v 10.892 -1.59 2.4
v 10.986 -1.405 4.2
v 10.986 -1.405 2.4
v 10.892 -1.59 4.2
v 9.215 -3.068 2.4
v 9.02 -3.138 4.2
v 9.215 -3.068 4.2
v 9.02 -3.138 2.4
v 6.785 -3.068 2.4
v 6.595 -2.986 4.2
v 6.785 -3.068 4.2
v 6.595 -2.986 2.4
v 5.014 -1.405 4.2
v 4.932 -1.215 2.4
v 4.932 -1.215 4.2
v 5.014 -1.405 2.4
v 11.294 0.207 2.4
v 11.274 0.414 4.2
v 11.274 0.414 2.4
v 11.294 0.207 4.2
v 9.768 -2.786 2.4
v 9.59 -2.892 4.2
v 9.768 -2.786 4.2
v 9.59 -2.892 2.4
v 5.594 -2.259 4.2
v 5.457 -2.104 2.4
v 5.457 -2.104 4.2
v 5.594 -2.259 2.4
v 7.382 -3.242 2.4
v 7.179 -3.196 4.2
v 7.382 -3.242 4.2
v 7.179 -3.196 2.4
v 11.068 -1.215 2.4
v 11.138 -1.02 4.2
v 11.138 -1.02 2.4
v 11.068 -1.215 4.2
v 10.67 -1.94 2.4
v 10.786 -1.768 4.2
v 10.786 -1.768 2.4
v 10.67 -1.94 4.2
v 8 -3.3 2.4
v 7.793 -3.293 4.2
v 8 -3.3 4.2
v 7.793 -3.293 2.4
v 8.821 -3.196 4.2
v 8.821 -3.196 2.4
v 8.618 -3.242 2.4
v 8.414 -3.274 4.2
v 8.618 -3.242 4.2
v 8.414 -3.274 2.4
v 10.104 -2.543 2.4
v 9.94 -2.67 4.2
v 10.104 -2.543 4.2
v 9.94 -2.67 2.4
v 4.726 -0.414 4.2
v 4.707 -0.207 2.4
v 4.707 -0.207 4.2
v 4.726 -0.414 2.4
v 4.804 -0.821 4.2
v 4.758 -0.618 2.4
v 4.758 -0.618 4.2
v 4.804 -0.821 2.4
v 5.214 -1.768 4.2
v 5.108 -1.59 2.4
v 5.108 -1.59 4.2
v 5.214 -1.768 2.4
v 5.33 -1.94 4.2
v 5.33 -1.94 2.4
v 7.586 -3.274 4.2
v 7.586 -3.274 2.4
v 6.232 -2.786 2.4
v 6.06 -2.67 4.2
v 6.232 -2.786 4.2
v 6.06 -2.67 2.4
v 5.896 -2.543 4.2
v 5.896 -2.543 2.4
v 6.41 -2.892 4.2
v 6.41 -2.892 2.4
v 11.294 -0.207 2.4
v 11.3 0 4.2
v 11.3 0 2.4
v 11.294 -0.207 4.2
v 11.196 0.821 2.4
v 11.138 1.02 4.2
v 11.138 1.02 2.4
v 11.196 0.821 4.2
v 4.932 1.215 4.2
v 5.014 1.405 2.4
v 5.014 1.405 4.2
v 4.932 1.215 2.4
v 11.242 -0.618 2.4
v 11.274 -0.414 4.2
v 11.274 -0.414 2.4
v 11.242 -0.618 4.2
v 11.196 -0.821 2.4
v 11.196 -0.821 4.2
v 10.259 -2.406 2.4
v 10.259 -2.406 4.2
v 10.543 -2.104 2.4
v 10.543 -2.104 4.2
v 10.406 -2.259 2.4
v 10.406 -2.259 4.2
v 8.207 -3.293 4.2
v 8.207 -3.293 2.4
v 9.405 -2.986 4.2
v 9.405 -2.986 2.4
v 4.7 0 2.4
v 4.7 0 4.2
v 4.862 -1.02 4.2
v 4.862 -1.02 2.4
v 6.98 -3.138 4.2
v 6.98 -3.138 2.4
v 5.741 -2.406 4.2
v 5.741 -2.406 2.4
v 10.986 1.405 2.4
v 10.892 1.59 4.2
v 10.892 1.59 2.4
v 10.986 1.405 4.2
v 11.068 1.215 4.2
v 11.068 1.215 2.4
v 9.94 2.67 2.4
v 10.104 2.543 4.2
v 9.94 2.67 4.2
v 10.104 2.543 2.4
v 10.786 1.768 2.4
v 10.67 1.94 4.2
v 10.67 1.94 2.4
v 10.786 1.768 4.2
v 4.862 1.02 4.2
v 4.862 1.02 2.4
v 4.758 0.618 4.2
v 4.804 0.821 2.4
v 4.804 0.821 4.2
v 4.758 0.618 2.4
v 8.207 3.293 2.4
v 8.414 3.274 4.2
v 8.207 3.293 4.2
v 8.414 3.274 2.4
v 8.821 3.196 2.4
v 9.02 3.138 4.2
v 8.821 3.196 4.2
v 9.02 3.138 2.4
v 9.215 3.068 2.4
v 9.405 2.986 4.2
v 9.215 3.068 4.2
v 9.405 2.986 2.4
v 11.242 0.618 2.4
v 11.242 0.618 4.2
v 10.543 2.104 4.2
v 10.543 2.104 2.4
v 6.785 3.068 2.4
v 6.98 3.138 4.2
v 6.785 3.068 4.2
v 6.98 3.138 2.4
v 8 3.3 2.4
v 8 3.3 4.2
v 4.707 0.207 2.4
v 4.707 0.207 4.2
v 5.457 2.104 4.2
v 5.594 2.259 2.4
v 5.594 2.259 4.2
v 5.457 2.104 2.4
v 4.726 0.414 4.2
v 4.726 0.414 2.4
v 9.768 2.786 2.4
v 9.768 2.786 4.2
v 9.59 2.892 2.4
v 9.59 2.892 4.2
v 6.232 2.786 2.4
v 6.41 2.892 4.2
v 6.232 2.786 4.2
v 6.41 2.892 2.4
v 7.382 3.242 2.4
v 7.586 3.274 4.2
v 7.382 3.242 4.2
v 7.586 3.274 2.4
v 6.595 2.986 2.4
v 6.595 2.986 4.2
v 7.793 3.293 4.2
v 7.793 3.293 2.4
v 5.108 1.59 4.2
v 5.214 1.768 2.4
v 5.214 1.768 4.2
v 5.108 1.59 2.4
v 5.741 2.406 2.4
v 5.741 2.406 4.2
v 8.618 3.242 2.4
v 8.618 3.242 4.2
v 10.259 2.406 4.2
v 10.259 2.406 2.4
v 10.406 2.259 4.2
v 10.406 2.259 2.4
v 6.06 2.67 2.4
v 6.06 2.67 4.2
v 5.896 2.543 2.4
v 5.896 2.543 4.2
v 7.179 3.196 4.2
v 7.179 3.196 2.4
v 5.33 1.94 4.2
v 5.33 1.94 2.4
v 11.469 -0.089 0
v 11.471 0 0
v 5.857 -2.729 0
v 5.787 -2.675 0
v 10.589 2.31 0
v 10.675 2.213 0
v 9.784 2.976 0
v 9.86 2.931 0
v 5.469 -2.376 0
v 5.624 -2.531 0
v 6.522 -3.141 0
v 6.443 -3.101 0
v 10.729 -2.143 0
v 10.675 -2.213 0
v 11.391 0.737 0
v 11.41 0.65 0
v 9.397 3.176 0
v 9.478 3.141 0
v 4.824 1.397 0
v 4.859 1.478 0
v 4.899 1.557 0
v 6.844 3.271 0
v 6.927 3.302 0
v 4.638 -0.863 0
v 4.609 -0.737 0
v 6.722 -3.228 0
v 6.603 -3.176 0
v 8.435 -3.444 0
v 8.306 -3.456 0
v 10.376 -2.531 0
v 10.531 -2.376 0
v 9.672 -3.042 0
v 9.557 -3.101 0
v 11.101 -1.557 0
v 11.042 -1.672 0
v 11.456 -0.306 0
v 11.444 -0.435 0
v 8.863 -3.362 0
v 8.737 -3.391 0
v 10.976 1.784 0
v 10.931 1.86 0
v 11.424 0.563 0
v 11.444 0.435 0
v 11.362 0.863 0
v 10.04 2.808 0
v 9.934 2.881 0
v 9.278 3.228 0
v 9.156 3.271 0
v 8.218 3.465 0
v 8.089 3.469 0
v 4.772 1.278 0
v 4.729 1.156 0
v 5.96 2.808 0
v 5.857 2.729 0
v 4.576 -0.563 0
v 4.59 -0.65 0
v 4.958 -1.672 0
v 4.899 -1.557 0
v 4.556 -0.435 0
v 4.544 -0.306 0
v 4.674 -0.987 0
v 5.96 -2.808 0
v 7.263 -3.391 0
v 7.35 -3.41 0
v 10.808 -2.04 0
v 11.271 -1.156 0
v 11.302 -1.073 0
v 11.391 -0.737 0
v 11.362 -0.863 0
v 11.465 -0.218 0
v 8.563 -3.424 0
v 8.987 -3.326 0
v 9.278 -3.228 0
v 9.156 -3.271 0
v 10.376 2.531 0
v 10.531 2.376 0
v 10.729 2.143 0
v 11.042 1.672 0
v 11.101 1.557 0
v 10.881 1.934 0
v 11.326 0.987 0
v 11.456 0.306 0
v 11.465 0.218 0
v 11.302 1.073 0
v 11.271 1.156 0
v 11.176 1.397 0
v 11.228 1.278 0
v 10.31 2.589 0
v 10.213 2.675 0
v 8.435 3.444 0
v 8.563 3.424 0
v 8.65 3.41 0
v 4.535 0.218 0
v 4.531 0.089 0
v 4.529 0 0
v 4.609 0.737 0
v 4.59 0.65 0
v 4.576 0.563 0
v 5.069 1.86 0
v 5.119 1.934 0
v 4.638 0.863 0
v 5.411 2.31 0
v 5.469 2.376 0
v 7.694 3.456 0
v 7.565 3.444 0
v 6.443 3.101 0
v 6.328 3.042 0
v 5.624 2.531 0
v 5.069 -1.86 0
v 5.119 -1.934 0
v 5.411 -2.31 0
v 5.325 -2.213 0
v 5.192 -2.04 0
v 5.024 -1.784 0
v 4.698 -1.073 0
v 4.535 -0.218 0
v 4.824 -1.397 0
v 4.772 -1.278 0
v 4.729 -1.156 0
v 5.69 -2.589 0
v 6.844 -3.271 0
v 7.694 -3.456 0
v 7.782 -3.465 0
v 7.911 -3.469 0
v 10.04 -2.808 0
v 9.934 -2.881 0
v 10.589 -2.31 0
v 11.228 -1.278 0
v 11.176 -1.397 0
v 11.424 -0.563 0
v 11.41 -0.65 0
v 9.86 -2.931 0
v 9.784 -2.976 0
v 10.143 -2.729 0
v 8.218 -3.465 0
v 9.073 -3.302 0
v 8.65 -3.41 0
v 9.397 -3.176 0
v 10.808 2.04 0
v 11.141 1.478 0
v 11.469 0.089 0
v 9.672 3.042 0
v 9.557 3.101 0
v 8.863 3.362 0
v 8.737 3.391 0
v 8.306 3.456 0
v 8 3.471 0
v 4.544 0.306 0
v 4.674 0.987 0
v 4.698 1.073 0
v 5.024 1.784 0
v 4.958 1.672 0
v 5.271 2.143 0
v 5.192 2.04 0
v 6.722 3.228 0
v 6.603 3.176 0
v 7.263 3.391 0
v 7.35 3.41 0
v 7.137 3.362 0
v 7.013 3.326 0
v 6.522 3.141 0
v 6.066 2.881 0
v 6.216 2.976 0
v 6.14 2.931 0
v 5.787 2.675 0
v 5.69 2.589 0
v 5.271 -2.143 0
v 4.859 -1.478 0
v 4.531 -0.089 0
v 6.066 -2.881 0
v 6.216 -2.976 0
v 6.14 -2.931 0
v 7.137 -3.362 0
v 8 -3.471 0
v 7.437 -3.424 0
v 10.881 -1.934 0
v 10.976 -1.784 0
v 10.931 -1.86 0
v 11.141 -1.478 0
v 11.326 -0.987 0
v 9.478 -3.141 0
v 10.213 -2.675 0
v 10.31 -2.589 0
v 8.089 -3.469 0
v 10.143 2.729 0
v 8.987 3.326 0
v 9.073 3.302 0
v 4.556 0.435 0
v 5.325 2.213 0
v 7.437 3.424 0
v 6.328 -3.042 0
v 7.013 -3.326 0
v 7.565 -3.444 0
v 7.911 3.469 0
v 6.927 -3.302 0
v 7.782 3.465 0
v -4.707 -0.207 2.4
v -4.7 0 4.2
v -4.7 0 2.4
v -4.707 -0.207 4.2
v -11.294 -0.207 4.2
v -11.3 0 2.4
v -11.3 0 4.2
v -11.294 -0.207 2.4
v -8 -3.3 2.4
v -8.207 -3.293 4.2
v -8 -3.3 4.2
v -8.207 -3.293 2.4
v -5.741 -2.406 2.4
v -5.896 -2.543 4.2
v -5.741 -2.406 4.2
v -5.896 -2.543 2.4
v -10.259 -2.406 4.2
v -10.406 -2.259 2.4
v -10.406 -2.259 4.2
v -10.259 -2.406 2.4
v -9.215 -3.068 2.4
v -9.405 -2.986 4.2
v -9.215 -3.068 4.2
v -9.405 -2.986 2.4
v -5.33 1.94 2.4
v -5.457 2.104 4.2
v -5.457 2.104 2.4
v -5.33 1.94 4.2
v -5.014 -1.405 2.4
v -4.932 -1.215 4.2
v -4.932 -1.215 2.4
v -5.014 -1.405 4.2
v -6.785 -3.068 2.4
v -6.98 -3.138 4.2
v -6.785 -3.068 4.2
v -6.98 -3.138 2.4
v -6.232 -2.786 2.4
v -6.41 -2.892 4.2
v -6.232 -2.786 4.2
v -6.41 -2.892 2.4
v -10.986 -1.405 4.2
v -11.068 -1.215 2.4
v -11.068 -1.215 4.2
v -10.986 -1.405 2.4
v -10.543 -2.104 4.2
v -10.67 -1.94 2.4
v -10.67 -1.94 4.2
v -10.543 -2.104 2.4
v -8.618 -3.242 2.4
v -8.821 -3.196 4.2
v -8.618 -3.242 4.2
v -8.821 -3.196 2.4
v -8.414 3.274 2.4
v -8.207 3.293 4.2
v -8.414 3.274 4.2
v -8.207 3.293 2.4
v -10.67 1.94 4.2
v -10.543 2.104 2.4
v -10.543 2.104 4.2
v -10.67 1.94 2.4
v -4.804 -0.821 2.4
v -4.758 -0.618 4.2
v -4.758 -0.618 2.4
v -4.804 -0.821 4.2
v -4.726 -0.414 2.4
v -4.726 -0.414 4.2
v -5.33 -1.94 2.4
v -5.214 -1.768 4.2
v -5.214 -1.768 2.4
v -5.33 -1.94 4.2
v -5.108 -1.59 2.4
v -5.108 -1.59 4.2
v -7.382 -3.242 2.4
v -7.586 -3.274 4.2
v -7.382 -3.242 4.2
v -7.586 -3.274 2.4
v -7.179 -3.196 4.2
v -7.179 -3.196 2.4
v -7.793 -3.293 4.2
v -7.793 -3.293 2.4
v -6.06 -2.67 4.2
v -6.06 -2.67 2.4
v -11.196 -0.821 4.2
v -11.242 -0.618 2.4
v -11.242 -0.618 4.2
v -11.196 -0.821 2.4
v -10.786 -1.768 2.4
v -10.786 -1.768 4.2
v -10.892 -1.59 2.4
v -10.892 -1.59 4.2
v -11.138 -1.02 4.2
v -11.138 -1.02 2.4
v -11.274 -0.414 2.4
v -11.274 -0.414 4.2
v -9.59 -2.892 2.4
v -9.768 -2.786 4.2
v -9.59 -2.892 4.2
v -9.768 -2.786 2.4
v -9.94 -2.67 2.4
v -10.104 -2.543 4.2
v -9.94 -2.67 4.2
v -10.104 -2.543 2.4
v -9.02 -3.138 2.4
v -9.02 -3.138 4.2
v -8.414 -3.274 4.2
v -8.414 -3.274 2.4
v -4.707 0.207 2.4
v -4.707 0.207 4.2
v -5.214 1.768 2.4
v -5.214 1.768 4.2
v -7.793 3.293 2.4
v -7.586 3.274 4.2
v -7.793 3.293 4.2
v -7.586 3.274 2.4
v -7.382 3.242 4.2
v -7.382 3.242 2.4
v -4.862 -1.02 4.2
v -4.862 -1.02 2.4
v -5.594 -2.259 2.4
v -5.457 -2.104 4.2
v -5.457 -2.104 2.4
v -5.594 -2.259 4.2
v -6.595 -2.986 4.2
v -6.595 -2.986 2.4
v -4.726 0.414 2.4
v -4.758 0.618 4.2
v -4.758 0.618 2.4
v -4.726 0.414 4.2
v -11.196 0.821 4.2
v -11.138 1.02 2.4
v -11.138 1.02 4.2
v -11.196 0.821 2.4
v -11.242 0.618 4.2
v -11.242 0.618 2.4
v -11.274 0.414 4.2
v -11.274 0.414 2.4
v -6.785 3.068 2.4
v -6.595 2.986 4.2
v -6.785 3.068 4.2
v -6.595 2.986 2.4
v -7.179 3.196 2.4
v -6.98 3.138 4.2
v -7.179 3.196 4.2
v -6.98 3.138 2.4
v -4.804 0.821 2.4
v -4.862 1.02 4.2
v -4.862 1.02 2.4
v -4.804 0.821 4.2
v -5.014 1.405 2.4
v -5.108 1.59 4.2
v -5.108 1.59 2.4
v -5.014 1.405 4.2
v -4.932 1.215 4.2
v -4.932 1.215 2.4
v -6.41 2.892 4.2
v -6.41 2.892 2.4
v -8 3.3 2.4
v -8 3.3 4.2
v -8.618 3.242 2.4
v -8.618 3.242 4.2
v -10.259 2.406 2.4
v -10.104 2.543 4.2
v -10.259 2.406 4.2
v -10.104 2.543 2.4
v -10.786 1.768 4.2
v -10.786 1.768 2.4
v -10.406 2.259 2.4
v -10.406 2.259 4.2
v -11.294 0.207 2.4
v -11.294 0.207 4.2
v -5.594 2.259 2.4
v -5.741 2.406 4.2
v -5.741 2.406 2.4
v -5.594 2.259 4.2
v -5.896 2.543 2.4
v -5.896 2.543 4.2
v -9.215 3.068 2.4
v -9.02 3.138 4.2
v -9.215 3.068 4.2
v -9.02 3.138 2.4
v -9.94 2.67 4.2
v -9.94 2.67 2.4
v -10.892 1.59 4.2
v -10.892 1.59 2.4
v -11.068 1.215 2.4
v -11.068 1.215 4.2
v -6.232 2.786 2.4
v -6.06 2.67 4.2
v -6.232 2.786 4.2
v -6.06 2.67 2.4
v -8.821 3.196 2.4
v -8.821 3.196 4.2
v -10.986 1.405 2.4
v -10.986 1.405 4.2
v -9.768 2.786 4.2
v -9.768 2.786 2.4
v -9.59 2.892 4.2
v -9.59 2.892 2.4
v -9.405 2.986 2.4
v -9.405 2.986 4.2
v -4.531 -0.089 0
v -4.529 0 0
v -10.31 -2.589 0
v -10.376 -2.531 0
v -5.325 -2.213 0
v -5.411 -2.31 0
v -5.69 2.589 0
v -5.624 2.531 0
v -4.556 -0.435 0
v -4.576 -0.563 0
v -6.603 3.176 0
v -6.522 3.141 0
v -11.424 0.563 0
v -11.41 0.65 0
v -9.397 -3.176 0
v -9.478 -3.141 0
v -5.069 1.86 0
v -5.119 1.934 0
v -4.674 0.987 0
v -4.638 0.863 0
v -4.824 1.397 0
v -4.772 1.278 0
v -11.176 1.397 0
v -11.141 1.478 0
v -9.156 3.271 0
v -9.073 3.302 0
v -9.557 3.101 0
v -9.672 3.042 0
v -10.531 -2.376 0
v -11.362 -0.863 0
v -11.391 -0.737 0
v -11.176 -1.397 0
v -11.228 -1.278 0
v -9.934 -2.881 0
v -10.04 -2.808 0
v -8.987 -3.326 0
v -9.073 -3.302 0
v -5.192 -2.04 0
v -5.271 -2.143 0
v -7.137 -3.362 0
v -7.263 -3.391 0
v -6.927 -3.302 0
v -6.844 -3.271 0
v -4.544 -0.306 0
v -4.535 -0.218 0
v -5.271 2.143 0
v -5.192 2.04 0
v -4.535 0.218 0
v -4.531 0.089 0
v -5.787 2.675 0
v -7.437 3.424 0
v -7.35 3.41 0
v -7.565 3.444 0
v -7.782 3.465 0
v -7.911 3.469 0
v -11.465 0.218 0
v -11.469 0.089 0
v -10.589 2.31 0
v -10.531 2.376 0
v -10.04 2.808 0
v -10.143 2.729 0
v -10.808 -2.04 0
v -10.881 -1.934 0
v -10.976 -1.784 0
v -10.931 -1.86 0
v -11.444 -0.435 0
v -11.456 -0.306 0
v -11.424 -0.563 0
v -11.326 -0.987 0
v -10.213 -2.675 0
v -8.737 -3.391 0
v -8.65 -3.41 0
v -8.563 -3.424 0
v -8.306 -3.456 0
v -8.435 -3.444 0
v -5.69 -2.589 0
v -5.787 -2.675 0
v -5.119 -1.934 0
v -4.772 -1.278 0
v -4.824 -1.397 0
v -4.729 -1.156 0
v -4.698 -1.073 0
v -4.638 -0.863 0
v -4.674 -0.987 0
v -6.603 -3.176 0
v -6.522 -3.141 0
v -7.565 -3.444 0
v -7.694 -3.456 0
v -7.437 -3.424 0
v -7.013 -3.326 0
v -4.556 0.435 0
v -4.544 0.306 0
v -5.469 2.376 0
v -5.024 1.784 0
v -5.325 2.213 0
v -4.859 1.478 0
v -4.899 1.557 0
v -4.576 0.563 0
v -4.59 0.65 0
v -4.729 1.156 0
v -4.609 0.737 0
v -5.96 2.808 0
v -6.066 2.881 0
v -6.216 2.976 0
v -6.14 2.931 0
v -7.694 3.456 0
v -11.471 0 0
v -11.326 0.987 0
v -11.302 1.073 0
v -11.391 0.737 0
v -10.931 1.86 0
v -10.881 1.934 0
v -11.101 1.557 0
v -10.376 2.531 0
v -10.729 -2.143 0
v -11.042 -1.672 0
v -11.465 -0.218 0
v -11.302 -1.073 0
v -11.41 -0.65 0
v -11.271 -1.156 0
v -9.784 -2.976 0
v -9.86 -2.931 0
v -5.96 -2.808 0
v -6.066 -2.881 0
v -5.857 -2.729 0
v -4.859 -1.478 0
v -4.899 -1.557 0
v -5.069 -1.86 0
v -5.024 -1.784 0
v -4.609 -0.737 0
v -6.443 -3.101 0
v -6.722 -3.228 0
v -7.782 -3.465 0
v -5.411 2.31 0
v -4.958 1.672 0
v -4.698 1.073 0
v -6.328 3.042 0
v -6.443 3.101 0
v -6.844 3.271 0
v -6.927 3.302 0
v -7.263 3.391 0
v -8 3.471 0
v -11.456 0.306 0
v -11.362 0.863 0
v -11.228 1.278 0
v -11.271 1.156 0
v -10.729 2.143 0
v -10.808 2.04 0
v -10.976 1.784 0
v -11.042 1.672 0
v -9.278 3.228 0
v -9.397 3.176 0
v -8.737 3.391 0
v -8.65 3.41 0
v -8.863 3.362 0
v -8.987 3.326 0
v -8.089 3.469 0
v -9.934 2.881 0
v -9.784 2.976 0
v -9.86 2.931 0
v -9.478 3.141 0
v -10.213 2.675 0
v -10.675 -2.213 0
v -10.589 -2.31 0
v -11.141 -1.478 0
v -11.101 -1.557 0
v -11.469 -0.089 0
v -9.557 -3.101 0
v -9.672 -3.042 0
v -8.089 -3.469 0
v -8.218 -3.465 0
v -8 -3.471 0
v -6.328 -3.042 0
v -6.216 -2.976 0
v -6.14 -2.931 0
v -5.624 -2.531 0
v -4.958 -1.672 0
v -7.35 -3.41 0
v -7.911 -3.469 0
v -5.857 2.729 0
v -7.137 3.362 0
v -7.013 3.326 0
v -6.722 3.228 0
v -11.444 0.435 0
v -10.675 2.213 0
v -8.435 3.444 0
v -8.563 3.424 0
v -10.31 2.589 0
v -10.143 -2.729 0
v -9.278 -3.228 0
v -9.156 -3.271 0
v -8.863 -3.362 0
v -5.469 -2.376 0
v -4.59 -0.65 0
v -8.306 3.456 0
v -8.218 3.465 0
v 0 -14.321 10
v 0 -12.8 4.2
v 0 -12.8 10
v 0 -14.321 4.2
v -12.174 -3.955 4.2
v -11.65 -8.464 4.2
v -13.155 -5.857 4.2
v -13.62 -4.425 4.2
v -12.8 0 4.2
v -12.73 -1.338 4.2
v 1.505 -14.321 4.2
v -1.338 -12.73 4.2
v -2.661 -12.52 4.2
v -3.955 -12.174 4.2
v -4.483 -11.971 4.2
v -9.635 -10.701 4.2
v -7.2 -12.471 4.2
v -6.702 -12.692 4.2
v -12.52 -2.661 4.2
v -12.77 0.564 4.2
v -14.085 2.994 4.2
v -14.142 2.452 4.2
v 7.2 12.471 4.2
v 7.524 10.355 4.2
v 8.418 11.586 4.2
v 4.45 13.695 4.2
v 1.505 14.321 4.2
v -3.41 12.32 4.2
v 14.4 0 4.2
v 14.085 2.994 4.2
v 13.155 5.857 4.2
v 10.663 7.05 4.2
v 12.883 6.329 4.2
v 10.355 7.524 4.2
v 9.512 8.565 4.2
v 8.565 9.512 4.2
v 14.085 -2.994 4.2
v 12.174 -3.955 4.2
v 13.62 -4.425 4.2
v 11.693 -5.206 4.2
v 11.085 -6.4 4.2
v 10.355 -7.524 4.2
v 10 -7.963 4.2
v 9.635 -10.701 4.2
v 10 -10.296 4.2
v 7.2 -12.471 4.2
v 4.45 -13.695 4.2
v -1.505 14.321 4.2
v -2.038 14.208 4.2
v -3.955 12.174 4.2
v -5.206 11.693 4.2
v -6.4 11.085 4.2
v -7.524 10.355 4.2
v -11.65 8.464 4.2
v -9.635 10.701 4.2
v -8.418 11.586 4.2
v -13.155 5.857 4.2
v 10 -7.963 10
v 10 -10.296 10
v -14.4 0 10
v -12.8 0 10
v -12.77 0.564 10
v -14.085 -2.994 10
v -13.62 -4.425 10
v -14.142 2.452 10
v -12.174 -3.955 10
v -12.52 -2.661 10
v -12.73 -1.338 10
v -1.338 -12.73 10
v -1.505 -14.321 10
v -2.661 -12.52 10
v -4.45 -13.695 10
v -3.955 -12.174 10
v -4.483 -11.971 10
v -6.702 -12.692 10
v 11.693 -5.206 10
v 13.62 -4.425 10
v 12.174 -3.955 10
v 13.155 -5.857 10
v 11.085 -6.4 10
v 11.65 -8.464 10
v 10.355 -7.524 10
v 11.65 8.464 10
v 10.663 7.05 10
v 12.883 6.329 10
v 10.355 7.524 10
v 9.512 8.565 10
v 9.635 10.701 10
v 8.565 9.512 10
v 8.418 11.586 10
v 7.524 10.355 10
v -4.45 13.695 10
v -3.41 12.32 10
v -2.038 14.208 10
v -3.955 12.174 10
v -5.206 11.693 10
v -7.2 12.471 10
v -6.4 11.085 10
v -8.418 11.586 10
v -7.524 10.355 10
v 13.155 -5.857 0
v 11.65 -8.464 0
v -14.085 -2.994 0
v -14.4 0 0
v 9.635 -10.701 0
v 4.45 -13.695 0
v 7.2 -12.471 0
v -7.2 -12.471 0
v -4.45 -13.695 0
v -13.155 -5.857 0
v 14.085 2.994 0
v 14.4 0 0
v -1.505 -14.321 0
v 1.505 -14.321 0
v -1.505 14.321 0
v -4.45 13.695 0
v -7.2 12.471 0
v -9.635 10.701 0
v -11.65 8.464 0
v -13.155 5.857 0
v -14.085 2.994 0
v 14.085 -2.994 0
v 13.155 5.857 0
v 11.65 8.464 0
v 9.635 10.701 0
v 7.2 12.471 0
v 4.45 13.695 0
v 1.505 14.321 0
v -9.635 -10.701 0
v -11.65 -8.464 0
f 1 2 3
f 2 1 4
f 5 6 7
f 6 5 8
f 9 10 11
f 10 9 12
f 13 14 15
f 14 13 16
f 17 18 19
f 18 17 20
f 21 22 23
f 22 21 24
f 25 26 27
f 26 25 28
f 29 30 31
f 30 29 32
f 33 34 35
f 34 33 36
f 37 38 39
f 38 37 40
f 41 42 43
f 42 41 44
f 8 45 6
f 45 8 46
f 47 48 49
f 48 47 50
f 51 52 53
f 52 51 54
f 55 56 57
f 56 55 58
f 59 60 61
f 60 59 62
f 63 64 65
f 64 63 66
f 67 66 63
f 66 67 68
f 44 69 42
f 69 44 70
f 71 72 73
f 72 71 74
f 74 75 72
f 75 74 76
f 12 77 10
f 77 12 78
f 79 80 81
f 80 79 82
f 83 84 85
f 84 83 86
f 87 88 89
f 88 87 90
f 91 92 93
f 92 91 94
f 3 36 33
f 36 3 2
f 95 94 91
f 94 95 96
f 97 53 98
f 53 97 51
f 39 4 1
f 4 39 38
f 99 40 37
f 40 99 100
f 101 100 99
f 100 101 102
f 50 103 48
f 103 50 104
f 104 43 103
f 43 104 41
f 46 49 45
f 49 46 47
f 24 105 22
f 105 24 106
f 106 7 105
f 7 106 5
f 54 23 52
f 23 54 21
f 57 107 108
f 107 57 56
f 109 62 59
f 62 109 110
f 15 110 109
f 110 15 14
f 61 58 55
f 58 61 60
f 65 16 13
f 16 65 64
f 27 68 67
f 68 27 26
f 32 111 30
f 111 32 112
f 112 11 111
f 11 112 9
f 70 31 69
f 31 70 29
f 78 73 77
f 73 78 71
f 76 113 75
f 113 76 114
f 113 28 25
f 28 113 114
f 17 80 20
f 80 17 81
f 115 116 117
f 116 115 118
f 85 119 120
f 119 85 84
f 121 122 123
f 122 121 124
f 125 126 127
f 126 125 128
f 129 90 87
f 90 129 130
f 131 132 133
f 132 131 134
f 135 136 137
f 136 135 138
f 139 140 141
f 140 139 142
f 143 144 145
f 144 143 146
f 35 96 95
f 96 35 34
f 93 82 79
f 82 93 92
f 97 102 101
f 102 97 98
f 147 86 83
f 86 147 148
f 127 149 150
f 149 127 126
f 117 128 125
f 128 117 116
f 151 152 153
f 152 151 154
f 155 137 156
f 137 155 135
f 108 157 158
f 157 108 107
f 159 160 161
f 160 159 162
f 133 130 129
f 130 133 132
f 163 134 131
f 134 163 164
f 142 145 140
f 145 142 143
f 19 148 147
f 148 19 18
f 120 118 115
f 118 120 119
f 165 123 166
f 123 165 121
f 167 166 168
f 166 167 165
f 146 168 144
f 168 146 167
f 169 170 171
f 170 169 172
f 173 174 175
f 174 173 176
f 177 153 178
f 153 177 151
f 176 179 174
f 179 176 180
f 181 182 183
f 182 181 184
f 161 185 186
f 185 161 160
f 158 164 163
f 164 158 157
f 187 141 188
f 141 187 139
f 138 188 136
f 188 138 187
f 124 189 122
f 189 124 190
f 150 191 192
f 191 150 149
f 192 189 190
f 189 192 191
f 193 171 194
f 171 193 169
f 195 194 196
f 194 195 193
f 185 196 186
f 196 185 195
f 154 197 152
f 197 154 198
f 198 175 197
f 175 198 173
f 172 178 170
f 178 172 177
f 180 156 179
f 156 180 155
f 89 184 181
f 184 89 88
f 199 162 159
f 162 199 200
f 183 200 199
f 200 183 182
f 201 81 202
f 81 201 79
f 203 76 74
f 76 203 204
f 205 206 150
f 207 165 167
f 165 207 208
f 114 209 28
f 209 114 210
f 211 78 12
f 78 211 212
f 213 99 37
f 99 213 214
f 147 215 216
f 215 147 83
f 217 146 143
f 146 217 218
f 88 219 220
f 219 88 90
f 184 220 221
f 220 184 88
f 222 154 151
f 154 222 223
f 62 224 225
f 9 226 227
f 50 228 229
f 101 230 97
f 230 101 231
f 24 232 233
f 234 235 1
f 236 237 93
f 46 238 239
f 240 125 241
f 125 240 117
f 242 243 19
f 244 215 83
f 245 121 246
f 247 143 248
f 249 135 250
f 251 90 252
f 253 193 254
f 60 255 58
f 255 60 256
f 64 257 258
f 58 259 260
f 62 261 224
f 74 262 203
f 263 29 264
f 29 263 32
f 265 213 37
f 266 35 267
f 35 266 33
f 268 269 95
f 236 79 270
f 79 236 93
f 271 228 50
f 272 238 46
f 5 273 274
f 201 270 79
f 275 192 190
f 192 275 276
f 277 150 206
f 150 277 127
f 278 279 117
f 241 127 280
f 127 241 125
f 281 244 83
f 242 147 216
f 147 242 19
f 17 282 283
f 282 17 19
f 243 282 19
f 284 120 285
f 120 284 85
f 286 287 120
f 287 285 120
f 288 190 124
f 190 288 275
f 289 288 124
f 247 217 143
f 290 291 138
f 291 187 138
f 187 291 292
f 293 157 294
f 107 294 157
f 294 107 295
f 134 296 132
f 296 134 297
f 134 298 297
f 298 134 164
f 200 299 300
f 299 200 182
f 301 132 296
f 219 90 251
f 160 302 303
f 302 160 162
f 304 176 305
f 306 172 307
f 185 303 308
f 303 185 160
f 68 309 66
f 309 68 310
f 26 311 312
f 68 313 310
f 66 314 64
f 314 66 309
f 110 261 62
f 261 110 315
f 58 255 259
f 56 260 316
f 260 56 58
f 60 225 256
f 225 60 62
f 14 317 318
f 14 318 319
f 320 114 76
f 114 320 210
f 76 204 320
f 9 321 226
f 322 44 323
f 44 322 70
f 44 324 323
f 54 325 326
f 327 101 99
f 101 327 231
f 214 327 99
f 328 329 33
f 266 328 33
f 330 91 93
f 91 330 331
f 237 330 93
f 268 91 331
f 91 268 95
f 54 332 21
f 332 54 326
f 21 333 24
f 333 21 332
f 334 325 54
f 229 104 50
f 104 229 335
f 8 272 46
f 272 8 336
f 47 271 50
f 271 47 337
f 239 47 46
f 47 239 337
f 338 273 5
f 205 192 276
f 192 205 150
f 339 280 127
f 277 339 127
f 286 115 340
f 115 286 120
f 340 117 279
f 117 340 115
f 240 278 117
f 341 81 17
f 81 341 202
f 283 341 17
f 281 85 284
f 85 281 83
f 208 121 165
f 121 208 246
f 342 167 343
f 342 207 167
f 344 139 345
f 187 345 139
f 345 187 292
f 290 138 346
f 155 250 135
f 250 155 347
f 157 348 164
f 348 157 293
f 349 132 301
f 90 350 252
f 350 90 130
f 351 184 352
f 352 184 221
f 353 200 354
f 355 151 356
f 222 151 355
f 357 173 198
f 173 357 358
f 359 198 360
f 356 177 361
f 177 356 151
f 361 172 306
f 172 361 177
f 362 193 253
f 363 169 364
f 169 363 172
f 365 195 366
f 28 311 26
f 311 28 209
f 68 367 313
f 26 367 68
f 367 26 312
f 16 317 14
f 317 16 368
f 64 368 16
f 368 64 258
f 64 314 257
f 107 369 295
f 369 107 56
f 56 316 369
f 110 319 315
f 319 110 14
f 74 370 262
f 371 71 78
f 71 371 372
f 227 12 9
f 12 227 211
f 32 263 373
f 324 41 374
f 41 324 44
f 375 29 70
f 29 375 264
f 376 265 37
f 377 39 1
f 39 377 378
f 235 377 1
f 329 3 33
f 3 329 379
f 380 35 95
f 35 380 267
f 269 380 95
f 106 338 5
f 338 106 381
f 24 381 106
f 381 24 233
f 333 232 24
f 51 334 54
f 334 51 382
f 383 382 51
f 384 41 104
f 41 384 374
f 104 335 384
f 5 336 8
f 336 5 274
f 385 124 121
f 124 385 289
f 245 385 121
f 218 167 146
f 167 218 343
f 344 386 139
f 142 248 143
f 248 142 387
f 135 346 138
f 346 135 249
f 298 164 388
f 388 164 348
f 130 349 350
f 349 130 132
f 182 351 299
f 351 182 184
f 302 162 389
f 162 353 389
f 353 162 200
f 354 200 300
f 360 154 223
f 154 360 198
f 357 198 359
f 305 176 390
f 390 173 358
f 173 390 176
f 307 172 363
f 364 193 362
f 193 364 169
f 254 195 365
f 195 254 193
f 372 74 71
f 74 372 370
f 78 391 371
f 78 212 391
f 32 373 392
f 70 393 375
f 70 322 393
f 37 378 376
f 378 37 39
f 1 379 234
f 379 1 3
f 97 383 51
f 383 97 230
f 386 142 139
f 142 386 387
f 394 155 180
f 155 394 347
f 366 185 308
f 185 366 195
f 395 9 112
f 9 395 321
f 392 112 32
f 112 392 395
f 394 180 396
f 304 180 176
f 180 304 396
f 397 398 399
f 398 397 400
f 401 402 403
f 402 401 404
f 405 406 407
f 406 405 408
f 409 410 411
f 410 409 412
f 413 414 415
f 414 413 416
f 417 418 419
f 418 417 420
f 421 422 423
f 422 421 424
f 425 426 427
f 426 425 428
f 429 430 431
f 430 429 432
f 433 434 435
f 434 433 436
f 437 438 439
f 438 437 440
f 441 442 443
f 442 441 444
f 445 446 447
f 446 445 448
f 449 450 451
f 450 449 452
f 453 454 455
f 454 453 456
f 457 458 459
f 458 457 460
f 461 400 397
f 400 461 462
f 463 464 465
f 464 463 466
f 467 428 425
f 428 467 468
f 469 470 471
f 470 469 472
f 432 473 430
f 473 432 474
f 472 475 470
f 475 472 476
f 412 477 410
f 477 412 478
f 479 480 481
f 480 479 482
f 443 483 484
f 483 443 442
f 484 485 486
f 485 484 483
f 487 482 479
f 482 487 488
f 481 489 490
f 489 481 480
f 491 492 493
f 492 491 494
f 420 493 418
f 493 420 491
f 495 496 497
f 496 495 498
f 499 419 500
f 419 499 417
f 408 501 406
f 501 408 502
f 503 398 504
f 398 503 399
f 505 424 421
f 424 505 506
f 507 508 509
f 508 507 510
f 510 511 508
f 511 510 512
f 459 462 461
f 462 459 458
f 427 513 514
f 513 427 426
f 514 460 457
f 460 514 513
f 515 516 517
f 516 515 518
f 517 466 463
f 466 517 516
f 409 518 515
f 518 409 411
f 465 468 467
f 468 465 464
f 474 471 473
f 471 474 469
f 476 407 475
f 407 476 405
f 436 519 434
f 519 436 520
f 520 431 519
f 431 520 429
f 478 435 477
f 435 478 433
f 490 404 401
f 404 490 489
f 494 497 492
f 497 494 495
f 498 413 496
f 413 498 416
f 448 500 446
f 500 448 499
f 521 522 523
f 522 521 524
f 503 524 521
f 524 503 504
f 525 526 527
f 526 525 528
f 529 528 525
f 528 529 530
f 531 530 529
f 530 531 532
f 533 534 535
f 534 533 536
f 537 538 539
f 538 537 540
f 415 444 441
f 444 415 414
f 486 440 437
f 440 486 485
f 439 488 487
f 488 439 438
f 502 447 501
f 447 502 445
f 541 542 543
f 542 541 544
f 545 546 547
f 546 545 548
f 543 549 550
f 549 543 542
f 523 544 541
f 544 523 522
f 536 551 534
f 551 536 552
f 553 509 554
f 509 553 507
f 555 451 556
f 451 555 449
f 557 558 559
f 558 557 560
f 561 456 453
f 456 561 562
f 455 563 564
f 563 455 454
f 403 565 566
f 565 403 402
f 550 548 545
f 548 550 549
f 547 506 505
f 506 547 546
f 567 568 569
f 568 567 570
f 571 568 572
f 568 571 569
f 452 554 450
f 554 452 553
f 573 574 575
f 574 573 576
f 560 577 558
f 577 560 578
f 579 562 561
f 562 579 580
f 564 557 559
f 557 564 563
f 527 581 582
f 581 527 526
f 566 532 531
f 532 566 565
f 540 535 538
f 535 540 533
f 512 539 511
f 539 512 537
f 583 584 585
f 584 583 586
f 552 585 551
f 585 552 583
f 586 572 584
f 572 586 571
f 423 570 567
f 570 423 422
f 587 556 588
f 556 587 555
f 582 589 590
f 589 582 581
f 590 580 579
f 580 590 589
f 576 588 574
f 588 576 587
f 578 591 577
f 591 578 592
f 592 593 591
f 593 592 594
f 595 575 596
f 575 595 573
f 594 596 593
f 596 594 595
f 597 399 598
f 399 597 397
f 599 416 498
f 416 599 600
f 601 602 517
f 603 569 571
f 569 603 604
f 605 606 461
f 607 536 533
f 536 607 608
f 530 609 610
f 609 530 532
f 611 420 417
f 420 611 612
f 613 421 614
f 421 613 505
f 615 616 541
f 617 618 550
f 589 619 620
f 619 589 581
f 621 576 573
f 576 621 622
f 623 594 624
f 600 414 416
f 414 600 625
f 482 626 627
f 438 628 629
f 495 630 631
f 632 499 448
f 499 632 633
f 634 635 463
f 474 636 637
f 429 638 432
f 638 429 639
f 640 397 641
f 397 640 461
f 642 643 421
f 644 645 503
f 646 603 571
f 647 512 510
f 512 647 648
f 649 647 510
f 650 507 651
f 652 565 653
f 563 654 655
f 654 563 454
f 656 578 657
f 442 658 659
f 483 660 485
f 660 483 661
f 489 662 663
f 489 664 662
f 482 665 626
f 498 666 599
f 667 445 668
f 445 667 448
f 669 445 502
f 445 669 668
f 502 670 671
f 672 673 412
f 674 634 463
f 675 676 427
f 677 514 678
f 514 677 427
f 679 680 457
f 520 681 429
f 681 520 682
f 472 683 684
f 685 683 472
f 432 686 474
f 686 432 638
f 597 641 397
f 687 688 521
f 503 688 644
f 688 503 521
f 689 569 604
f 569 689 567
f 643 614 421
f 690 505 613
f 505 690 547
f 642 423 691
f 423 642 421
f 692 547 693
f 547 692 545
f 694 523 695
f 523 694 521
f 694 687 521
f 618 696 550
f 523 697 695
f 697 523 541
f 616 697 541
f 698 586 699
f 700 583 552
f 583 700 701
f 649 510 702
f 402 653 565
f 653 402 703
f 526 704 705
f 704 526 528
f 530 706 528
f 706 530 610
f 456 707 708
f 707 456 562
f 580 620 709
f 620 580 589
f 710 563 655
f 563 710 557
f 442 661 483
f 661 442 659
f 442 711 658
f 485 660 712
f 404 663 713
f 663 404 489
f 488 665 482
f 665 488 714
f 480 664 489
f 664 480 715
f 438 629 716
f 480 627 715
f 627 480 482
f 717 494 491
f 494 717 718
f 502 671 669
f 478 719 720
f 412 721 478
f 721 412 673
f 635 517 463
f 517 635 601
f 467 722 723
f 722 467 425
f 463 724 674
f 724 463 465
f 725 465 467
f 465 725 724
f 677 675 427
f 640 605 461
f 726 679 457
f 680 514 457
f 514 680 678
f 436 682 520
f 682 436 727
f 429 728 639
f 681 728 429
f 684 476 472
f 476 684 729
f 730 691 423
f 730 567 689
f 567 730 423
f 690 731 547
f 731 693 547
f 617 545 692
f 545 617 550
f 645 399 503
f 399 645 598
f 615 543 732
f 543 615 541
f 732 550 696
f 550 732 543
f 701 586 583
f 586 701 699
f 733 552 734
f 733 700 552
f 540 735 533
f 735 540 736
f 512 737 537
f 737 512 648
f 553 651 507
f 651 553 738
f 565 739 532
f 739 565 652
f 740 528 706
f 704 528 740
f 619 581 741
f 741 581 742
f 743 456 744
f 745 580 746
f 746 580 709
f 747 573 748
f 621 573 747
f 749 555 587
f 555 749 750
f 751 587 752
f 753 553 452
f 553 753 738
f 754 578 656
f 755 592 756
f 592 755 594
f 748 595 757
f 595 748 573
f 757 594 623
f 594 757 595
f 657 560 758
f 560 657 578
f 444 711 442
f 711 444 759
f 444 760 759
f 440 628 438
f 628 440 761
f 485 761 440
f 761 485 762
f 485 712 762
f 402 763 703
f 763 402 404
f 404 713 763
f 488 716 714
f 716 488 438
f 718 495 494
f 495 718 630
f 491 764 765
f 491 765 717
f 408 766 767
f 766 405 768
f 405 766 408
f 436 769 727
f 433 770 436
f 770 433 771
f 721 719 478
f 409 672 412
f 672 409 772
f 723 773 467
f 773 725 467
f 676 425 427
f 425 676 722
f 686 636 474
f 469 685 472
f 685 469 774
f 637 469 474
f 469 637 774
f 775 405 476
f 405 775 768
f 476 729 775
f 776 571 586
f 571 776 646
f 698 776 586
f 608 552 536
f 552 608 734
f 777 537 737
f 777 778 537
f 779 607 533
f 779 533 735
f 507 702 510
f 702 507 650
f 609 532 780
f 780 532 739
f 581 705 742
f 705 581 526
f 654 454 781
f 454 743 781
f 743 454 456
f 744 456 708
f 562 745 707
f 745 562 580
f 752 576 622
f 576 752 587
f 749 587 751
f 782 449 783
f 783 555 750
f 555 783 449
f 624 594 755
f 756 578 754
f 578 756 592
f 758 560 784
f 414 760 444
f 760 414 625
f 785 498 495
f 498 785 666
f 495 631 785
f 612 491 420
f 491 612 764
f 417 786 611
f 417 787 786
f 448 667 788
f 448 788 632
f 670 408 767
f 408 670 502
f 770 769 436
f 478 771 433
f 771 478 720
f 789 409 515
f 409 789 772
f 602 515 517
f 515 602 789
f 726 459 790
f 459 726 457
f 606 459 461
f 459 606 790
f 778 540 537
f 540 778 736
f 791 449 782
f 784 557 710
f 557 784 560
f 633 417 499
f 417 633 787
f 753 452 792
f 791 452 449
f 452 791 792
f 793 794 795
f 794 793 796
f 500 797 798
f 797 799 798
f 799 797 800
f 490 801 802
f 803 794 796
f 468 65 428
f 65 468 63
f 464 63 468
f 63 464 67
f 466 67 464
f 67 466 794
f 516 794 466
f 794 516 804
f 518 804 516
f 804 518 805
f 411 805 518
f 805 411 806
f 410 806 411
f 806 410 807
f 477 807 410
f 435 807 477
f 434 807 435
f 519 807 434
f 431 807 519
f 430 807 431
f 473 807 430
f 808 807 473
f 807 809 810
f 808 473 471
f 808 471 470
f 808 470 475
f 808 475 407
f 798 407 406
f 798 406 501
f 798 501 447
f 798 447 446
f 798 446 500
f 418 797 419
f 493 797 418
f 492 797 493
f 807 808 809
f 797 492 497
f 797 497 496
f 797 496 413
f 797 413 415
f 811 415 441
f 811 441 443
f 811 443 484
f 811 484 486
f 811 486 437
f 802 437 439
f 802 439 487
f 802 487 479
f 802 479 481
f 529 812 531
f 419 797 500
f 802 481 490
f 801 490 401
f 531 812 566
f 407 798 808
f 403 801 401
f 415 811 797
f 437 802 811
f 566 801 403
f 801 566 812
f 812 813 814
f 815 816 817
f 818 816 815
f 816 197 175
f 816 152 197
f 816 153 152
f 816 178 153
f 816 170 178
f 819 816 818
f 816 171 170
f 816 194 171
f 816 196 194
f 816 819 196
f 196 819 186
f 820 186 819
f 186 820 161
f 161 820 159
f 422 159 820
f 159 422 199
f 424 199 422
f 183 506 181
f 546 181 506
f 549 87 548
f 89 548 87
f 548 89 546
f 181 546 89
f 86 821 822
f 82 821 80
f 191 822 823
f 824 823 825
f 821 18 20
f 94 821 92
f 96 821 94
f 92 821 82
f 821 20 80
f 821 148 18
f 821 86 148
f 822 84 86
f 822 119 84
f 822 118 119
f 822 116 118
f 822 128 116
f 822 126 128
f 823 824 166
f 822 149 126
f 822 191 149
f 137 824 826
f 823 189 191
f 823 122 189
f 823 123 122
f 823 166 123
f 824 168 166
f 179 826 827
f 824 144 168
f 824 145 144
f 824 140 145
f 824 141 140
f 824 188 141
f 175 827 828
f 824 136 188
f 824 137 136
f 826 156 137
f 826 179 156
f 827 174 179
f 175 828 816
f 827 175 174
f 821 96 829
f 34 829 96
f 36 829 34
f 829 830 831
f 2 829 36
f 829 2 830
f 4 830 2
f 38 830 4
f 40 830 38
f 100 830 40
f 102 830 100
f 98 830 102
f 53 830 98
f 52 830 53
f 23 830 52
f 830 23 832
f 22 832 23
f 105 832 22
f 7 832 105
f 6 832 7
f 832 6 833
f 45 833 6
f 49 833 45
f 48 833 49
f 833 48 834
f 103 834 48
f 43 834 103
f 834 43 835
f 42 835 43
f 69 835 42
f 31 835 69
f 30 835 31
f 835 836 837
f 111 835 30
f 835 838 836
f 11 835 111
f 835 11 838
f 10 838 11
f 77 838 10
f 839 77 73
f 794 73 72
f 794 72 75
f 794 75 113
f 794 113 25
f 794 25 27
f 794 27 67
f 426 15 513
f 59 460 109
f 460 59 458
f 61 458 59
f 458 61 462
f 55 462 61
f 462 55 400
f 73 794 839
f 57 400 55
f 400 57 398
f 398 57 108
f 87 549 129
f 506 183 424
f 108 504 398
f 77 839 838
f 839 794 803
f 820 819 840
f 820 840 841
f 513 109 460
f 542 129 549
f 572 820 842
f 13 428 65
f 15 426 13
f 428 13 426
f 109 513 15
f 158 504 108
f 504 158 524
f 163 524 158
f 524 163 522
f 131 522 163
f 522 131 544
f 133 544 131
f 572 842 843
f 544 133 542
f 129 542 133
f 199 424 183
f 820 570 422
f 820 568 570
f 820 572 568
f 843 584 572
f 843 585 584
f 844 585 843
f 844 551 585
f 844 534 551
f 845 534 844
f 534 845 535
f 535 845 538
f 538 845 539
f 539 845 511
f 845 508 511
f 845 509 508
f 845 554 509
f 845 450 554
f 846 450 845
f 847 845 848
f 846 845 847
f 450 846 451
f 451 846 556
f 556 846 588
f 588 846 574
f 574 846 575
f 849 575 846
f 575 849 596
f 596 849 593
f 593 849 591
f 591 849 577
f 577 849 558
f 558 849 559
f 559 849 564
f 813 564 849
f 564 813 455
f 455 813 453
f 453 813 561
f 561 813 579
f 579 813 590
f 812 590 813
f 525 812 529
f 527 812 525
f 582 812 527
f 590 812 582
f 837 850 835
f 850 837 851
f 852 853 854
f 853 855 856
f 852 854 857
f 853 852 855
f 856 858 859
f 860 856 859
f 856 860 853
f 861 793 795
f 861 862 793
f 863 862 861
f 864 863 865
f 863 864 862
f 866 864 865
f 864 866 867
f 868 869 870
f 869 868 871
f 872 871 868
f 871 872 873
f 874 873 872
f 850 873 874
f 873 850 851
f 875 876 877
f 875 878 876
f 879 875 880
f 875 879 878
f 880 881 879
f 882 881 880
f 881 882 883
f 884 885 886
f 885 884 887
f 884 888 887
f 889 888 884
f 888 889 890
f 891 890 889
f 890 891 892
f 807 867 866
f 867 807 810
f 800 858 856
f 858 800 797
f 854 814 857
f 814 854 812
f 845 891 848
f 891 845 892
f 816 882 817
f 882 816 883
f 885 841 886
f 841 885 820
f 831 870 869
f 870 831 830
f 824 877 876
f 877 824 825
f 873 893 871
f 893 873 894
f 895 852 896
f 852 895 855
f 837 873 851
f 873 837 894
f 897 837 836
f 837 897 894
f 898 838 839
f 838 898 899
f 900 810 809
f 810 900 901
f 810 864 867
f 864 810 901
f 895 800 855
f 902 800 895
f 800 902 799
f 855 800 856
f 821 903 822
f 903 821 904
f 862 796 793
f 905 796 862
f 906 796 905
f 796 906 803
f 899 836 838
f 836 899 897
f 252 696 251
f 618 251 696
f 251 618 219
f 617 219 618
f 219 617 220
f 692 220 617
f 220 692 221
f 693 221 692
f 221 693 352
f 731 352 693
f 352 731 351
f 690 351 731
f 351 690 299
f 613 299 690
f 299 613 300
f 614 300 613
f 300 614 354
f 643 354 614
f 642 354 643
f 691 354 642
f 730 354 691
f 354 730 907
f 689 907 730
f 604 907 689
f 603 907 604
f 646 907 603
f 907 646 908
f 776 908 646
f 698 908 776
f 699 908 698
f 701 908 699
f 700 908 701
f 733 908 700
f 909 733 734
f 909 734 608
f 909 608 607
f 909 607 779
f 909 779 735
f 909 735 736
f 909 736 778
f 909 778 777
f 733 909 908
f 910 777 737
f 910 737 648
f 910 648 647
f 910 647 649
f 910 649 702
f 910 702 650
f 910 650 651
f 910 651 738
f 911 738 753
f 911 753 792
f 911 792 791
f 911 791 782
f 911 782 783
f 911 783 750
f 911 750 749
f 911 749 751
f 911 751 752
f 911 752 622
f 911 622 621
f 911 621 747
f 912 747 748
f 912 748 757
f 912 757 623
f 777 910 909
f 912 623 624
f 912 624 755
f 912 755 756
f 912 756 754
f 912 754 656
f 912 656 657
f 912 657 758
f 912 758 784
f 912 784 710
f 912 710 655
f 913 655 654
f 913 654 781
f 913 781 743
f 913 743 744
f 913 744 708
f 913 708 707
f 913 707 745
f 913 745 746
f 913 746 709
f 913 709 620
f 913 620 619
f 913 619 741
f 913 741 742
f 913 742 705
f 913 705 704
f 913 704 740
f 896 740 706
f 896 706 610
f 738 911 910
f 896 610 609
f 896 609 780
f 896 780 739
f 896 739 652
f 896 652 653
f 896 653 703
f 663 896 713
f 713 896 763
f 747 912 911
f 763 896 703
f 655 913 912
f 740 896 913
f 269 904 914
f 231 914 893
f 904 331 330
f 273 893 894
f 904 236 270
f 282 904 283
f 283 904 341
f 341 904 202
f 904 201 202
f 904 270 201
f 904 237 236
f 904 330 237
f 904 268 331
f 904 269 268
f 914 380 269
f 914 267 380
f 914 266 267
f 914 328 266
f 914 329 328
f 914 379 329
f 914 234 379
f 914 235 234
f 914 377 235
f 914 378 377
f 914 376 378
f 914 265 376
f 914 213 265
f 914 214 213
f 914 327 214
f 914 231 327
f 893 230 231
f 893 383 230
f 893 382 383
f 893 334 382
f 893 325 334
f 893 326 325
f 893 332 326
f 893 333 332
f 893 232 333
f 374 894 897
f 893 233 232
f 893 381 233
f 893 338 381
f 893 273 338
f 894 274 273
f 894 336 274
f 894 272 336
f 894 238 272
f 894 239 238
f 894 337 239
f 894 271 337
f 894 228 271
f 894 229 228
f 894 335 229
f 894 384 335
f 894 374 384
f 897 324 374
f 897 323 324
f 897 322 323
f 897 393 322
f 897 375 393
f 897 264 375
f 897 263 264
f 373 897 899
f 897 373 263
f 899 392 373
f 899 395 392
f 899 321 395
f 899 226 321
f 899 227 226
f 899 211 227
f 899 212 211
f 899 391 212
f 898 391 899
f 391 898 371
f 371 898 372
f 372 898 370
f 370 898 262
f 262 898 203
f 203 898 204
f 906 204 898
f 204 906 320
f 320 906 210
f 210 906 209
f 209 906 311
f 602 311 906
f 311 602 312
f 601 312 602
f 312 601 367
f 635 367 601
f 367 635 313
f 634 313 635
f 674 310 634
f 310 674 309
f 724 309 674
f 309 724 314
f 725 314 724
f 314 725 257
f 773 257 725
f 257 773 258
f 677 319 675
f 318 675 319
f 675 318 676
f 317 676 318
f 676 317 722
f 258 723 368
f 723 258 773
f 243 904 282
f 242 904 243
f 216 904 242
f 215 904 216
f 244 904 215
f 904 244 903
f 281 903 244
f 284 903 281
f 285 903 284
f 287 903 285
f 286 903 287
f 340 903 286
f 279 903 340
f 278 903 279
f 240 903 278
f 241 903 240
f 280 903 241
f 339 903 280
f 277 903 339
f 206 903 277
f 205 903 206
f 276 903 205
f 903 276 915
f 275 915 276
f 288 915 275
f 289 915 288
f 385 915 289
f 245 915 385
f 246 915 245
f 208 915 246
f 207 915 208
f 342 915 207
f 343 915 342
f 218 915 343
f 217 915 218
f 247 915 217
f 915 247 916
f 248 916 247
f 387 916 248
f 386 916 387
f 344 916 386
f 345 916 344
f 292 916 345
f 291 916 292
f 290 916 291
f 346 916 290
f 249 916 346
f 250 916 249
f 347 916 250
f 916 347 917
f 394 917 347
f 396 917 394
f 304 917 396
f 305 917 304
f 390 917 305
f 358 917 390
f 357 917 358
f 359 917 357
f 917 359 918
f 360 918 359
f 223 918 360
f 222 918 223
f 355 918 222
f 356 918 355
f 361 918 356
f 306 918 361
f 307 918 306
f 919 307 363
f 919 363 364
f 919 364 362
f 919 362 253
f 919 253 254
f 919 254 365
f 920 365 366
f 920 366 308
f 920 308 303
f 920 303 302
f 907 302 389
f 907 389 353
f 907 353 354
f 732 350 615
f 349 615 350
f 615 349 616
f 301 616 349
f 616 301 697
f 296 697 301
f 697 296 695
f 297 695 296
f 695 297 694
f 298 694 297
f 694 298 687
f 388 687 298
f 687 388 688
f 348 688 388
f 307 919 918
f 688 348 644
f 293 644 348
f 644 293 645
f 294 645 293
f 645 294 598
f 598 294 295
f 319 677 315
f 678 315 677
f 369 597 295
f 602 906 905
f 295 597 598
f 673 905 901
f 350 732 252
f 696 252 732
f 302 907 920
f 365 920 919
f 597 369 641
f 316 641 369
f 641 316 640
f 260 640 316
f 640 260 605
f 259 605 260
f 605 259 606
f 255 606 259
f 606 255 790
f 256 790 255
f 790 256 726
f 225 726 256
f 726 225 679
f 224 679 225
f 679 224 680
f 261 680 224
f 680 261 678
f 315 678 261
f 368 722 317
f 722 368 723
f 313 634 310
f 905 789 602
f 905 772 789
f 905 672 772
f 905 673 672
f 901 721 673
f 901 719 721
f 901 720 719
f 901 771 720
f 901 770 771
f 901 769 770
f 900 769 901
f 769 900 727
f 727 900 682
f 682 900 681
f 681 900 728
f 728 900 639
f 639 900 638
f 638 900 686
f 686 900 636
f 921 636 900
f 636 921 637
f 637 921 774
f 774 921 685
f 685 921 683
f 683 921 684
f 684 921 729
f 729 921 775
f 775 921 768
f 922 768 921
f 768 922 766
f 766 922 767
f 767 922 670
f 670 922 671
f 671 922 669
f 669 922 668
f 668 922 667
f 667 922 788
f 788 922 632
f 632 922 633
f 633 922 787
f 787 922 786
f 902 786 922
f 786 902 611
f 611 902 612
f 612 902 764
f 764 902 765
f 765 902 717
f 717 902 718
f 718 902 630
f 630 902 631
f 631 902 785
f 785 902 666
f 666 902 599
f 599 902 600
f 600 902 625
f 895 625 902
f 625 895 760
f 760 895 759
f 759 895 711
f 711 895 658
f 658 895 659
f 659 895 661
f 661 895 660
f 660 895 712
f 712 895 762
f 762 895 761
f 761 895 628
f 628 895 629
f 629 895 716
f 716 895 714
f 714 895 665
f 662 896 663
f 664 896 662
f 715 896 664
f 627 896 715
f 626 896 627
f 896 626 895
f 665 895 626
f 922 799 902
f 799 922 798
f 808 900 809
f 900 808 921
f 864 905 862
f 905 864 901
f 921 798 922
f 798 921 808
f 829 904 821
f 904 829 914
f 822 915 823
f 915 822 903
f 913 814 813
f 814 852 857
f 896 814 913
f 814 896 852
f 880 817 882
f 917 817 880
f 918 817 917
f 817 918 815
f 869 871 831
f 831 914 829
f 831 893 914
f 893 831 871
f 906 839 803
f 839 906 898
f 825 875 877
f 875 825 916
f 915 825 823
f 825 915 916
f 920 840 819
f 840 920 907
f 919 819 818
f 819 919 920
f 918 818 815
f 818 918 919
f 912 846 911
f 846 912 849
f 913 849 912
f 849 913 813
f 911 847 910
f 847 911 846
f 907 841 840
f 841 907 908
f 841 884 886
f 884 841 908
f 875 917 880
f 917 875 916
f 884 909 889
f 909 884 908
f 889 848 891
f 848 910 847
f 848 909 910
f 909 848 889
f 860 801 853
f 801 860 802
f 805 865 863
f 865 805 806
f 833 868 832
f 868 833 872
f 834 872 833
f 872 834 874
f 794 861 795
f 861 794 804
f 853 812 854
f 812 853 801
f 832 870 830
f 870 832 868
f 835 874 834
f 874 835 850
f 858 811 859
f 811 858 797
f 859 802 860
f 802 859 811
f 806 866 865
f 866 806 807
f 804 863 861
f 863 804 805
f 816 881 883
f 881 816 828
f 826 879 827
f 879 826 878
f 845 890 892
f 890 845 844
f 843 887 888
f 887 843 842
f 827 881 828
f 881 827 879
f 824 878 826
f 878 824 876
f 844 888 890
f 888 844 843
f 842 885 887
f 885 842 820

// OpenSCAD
thickness =1.6;
diameter = 25.2+0.4;
magnet_hole_dia = 6.6;
magnet_hole_depth = 4.2;
top_height = 4.2;
overall_height = 10;
hole_offset = 16/2;

translate([0, 0, overall_height]) rotate([180, 0, 0])
difference() {
  cylinder(h=overall_height,d=diameter+2*thickness);
  cylinder(h=(overall_height-top_height)*2, d=diameter, center=true,$fn=60);
  for (i = [hole_offset,-hole_offset]) {
    translate([i,0,overall_height-magnet_hole_depth]) 
      cylinder(h=magnet_hole_depth*2,d=magnet_hole_dia,center=true,$fn=100);
    translate([i,0,overall_height-0.3]) 
      cylinder(h=magnet_hole_depth,d2=magnet_hole_dia+0.6,d1=magnet_hole_dia,center=true,$fn=100);
  }
  for (i=[0:4]) {
  	rotate([0,0,360/5*i])
  	cube([10,100,(overall_height-top_height)]);
  }
}

//"tool" for pressing magnets
//translate([30,0])
	//cylinder(h=7,d=diameter-1);
